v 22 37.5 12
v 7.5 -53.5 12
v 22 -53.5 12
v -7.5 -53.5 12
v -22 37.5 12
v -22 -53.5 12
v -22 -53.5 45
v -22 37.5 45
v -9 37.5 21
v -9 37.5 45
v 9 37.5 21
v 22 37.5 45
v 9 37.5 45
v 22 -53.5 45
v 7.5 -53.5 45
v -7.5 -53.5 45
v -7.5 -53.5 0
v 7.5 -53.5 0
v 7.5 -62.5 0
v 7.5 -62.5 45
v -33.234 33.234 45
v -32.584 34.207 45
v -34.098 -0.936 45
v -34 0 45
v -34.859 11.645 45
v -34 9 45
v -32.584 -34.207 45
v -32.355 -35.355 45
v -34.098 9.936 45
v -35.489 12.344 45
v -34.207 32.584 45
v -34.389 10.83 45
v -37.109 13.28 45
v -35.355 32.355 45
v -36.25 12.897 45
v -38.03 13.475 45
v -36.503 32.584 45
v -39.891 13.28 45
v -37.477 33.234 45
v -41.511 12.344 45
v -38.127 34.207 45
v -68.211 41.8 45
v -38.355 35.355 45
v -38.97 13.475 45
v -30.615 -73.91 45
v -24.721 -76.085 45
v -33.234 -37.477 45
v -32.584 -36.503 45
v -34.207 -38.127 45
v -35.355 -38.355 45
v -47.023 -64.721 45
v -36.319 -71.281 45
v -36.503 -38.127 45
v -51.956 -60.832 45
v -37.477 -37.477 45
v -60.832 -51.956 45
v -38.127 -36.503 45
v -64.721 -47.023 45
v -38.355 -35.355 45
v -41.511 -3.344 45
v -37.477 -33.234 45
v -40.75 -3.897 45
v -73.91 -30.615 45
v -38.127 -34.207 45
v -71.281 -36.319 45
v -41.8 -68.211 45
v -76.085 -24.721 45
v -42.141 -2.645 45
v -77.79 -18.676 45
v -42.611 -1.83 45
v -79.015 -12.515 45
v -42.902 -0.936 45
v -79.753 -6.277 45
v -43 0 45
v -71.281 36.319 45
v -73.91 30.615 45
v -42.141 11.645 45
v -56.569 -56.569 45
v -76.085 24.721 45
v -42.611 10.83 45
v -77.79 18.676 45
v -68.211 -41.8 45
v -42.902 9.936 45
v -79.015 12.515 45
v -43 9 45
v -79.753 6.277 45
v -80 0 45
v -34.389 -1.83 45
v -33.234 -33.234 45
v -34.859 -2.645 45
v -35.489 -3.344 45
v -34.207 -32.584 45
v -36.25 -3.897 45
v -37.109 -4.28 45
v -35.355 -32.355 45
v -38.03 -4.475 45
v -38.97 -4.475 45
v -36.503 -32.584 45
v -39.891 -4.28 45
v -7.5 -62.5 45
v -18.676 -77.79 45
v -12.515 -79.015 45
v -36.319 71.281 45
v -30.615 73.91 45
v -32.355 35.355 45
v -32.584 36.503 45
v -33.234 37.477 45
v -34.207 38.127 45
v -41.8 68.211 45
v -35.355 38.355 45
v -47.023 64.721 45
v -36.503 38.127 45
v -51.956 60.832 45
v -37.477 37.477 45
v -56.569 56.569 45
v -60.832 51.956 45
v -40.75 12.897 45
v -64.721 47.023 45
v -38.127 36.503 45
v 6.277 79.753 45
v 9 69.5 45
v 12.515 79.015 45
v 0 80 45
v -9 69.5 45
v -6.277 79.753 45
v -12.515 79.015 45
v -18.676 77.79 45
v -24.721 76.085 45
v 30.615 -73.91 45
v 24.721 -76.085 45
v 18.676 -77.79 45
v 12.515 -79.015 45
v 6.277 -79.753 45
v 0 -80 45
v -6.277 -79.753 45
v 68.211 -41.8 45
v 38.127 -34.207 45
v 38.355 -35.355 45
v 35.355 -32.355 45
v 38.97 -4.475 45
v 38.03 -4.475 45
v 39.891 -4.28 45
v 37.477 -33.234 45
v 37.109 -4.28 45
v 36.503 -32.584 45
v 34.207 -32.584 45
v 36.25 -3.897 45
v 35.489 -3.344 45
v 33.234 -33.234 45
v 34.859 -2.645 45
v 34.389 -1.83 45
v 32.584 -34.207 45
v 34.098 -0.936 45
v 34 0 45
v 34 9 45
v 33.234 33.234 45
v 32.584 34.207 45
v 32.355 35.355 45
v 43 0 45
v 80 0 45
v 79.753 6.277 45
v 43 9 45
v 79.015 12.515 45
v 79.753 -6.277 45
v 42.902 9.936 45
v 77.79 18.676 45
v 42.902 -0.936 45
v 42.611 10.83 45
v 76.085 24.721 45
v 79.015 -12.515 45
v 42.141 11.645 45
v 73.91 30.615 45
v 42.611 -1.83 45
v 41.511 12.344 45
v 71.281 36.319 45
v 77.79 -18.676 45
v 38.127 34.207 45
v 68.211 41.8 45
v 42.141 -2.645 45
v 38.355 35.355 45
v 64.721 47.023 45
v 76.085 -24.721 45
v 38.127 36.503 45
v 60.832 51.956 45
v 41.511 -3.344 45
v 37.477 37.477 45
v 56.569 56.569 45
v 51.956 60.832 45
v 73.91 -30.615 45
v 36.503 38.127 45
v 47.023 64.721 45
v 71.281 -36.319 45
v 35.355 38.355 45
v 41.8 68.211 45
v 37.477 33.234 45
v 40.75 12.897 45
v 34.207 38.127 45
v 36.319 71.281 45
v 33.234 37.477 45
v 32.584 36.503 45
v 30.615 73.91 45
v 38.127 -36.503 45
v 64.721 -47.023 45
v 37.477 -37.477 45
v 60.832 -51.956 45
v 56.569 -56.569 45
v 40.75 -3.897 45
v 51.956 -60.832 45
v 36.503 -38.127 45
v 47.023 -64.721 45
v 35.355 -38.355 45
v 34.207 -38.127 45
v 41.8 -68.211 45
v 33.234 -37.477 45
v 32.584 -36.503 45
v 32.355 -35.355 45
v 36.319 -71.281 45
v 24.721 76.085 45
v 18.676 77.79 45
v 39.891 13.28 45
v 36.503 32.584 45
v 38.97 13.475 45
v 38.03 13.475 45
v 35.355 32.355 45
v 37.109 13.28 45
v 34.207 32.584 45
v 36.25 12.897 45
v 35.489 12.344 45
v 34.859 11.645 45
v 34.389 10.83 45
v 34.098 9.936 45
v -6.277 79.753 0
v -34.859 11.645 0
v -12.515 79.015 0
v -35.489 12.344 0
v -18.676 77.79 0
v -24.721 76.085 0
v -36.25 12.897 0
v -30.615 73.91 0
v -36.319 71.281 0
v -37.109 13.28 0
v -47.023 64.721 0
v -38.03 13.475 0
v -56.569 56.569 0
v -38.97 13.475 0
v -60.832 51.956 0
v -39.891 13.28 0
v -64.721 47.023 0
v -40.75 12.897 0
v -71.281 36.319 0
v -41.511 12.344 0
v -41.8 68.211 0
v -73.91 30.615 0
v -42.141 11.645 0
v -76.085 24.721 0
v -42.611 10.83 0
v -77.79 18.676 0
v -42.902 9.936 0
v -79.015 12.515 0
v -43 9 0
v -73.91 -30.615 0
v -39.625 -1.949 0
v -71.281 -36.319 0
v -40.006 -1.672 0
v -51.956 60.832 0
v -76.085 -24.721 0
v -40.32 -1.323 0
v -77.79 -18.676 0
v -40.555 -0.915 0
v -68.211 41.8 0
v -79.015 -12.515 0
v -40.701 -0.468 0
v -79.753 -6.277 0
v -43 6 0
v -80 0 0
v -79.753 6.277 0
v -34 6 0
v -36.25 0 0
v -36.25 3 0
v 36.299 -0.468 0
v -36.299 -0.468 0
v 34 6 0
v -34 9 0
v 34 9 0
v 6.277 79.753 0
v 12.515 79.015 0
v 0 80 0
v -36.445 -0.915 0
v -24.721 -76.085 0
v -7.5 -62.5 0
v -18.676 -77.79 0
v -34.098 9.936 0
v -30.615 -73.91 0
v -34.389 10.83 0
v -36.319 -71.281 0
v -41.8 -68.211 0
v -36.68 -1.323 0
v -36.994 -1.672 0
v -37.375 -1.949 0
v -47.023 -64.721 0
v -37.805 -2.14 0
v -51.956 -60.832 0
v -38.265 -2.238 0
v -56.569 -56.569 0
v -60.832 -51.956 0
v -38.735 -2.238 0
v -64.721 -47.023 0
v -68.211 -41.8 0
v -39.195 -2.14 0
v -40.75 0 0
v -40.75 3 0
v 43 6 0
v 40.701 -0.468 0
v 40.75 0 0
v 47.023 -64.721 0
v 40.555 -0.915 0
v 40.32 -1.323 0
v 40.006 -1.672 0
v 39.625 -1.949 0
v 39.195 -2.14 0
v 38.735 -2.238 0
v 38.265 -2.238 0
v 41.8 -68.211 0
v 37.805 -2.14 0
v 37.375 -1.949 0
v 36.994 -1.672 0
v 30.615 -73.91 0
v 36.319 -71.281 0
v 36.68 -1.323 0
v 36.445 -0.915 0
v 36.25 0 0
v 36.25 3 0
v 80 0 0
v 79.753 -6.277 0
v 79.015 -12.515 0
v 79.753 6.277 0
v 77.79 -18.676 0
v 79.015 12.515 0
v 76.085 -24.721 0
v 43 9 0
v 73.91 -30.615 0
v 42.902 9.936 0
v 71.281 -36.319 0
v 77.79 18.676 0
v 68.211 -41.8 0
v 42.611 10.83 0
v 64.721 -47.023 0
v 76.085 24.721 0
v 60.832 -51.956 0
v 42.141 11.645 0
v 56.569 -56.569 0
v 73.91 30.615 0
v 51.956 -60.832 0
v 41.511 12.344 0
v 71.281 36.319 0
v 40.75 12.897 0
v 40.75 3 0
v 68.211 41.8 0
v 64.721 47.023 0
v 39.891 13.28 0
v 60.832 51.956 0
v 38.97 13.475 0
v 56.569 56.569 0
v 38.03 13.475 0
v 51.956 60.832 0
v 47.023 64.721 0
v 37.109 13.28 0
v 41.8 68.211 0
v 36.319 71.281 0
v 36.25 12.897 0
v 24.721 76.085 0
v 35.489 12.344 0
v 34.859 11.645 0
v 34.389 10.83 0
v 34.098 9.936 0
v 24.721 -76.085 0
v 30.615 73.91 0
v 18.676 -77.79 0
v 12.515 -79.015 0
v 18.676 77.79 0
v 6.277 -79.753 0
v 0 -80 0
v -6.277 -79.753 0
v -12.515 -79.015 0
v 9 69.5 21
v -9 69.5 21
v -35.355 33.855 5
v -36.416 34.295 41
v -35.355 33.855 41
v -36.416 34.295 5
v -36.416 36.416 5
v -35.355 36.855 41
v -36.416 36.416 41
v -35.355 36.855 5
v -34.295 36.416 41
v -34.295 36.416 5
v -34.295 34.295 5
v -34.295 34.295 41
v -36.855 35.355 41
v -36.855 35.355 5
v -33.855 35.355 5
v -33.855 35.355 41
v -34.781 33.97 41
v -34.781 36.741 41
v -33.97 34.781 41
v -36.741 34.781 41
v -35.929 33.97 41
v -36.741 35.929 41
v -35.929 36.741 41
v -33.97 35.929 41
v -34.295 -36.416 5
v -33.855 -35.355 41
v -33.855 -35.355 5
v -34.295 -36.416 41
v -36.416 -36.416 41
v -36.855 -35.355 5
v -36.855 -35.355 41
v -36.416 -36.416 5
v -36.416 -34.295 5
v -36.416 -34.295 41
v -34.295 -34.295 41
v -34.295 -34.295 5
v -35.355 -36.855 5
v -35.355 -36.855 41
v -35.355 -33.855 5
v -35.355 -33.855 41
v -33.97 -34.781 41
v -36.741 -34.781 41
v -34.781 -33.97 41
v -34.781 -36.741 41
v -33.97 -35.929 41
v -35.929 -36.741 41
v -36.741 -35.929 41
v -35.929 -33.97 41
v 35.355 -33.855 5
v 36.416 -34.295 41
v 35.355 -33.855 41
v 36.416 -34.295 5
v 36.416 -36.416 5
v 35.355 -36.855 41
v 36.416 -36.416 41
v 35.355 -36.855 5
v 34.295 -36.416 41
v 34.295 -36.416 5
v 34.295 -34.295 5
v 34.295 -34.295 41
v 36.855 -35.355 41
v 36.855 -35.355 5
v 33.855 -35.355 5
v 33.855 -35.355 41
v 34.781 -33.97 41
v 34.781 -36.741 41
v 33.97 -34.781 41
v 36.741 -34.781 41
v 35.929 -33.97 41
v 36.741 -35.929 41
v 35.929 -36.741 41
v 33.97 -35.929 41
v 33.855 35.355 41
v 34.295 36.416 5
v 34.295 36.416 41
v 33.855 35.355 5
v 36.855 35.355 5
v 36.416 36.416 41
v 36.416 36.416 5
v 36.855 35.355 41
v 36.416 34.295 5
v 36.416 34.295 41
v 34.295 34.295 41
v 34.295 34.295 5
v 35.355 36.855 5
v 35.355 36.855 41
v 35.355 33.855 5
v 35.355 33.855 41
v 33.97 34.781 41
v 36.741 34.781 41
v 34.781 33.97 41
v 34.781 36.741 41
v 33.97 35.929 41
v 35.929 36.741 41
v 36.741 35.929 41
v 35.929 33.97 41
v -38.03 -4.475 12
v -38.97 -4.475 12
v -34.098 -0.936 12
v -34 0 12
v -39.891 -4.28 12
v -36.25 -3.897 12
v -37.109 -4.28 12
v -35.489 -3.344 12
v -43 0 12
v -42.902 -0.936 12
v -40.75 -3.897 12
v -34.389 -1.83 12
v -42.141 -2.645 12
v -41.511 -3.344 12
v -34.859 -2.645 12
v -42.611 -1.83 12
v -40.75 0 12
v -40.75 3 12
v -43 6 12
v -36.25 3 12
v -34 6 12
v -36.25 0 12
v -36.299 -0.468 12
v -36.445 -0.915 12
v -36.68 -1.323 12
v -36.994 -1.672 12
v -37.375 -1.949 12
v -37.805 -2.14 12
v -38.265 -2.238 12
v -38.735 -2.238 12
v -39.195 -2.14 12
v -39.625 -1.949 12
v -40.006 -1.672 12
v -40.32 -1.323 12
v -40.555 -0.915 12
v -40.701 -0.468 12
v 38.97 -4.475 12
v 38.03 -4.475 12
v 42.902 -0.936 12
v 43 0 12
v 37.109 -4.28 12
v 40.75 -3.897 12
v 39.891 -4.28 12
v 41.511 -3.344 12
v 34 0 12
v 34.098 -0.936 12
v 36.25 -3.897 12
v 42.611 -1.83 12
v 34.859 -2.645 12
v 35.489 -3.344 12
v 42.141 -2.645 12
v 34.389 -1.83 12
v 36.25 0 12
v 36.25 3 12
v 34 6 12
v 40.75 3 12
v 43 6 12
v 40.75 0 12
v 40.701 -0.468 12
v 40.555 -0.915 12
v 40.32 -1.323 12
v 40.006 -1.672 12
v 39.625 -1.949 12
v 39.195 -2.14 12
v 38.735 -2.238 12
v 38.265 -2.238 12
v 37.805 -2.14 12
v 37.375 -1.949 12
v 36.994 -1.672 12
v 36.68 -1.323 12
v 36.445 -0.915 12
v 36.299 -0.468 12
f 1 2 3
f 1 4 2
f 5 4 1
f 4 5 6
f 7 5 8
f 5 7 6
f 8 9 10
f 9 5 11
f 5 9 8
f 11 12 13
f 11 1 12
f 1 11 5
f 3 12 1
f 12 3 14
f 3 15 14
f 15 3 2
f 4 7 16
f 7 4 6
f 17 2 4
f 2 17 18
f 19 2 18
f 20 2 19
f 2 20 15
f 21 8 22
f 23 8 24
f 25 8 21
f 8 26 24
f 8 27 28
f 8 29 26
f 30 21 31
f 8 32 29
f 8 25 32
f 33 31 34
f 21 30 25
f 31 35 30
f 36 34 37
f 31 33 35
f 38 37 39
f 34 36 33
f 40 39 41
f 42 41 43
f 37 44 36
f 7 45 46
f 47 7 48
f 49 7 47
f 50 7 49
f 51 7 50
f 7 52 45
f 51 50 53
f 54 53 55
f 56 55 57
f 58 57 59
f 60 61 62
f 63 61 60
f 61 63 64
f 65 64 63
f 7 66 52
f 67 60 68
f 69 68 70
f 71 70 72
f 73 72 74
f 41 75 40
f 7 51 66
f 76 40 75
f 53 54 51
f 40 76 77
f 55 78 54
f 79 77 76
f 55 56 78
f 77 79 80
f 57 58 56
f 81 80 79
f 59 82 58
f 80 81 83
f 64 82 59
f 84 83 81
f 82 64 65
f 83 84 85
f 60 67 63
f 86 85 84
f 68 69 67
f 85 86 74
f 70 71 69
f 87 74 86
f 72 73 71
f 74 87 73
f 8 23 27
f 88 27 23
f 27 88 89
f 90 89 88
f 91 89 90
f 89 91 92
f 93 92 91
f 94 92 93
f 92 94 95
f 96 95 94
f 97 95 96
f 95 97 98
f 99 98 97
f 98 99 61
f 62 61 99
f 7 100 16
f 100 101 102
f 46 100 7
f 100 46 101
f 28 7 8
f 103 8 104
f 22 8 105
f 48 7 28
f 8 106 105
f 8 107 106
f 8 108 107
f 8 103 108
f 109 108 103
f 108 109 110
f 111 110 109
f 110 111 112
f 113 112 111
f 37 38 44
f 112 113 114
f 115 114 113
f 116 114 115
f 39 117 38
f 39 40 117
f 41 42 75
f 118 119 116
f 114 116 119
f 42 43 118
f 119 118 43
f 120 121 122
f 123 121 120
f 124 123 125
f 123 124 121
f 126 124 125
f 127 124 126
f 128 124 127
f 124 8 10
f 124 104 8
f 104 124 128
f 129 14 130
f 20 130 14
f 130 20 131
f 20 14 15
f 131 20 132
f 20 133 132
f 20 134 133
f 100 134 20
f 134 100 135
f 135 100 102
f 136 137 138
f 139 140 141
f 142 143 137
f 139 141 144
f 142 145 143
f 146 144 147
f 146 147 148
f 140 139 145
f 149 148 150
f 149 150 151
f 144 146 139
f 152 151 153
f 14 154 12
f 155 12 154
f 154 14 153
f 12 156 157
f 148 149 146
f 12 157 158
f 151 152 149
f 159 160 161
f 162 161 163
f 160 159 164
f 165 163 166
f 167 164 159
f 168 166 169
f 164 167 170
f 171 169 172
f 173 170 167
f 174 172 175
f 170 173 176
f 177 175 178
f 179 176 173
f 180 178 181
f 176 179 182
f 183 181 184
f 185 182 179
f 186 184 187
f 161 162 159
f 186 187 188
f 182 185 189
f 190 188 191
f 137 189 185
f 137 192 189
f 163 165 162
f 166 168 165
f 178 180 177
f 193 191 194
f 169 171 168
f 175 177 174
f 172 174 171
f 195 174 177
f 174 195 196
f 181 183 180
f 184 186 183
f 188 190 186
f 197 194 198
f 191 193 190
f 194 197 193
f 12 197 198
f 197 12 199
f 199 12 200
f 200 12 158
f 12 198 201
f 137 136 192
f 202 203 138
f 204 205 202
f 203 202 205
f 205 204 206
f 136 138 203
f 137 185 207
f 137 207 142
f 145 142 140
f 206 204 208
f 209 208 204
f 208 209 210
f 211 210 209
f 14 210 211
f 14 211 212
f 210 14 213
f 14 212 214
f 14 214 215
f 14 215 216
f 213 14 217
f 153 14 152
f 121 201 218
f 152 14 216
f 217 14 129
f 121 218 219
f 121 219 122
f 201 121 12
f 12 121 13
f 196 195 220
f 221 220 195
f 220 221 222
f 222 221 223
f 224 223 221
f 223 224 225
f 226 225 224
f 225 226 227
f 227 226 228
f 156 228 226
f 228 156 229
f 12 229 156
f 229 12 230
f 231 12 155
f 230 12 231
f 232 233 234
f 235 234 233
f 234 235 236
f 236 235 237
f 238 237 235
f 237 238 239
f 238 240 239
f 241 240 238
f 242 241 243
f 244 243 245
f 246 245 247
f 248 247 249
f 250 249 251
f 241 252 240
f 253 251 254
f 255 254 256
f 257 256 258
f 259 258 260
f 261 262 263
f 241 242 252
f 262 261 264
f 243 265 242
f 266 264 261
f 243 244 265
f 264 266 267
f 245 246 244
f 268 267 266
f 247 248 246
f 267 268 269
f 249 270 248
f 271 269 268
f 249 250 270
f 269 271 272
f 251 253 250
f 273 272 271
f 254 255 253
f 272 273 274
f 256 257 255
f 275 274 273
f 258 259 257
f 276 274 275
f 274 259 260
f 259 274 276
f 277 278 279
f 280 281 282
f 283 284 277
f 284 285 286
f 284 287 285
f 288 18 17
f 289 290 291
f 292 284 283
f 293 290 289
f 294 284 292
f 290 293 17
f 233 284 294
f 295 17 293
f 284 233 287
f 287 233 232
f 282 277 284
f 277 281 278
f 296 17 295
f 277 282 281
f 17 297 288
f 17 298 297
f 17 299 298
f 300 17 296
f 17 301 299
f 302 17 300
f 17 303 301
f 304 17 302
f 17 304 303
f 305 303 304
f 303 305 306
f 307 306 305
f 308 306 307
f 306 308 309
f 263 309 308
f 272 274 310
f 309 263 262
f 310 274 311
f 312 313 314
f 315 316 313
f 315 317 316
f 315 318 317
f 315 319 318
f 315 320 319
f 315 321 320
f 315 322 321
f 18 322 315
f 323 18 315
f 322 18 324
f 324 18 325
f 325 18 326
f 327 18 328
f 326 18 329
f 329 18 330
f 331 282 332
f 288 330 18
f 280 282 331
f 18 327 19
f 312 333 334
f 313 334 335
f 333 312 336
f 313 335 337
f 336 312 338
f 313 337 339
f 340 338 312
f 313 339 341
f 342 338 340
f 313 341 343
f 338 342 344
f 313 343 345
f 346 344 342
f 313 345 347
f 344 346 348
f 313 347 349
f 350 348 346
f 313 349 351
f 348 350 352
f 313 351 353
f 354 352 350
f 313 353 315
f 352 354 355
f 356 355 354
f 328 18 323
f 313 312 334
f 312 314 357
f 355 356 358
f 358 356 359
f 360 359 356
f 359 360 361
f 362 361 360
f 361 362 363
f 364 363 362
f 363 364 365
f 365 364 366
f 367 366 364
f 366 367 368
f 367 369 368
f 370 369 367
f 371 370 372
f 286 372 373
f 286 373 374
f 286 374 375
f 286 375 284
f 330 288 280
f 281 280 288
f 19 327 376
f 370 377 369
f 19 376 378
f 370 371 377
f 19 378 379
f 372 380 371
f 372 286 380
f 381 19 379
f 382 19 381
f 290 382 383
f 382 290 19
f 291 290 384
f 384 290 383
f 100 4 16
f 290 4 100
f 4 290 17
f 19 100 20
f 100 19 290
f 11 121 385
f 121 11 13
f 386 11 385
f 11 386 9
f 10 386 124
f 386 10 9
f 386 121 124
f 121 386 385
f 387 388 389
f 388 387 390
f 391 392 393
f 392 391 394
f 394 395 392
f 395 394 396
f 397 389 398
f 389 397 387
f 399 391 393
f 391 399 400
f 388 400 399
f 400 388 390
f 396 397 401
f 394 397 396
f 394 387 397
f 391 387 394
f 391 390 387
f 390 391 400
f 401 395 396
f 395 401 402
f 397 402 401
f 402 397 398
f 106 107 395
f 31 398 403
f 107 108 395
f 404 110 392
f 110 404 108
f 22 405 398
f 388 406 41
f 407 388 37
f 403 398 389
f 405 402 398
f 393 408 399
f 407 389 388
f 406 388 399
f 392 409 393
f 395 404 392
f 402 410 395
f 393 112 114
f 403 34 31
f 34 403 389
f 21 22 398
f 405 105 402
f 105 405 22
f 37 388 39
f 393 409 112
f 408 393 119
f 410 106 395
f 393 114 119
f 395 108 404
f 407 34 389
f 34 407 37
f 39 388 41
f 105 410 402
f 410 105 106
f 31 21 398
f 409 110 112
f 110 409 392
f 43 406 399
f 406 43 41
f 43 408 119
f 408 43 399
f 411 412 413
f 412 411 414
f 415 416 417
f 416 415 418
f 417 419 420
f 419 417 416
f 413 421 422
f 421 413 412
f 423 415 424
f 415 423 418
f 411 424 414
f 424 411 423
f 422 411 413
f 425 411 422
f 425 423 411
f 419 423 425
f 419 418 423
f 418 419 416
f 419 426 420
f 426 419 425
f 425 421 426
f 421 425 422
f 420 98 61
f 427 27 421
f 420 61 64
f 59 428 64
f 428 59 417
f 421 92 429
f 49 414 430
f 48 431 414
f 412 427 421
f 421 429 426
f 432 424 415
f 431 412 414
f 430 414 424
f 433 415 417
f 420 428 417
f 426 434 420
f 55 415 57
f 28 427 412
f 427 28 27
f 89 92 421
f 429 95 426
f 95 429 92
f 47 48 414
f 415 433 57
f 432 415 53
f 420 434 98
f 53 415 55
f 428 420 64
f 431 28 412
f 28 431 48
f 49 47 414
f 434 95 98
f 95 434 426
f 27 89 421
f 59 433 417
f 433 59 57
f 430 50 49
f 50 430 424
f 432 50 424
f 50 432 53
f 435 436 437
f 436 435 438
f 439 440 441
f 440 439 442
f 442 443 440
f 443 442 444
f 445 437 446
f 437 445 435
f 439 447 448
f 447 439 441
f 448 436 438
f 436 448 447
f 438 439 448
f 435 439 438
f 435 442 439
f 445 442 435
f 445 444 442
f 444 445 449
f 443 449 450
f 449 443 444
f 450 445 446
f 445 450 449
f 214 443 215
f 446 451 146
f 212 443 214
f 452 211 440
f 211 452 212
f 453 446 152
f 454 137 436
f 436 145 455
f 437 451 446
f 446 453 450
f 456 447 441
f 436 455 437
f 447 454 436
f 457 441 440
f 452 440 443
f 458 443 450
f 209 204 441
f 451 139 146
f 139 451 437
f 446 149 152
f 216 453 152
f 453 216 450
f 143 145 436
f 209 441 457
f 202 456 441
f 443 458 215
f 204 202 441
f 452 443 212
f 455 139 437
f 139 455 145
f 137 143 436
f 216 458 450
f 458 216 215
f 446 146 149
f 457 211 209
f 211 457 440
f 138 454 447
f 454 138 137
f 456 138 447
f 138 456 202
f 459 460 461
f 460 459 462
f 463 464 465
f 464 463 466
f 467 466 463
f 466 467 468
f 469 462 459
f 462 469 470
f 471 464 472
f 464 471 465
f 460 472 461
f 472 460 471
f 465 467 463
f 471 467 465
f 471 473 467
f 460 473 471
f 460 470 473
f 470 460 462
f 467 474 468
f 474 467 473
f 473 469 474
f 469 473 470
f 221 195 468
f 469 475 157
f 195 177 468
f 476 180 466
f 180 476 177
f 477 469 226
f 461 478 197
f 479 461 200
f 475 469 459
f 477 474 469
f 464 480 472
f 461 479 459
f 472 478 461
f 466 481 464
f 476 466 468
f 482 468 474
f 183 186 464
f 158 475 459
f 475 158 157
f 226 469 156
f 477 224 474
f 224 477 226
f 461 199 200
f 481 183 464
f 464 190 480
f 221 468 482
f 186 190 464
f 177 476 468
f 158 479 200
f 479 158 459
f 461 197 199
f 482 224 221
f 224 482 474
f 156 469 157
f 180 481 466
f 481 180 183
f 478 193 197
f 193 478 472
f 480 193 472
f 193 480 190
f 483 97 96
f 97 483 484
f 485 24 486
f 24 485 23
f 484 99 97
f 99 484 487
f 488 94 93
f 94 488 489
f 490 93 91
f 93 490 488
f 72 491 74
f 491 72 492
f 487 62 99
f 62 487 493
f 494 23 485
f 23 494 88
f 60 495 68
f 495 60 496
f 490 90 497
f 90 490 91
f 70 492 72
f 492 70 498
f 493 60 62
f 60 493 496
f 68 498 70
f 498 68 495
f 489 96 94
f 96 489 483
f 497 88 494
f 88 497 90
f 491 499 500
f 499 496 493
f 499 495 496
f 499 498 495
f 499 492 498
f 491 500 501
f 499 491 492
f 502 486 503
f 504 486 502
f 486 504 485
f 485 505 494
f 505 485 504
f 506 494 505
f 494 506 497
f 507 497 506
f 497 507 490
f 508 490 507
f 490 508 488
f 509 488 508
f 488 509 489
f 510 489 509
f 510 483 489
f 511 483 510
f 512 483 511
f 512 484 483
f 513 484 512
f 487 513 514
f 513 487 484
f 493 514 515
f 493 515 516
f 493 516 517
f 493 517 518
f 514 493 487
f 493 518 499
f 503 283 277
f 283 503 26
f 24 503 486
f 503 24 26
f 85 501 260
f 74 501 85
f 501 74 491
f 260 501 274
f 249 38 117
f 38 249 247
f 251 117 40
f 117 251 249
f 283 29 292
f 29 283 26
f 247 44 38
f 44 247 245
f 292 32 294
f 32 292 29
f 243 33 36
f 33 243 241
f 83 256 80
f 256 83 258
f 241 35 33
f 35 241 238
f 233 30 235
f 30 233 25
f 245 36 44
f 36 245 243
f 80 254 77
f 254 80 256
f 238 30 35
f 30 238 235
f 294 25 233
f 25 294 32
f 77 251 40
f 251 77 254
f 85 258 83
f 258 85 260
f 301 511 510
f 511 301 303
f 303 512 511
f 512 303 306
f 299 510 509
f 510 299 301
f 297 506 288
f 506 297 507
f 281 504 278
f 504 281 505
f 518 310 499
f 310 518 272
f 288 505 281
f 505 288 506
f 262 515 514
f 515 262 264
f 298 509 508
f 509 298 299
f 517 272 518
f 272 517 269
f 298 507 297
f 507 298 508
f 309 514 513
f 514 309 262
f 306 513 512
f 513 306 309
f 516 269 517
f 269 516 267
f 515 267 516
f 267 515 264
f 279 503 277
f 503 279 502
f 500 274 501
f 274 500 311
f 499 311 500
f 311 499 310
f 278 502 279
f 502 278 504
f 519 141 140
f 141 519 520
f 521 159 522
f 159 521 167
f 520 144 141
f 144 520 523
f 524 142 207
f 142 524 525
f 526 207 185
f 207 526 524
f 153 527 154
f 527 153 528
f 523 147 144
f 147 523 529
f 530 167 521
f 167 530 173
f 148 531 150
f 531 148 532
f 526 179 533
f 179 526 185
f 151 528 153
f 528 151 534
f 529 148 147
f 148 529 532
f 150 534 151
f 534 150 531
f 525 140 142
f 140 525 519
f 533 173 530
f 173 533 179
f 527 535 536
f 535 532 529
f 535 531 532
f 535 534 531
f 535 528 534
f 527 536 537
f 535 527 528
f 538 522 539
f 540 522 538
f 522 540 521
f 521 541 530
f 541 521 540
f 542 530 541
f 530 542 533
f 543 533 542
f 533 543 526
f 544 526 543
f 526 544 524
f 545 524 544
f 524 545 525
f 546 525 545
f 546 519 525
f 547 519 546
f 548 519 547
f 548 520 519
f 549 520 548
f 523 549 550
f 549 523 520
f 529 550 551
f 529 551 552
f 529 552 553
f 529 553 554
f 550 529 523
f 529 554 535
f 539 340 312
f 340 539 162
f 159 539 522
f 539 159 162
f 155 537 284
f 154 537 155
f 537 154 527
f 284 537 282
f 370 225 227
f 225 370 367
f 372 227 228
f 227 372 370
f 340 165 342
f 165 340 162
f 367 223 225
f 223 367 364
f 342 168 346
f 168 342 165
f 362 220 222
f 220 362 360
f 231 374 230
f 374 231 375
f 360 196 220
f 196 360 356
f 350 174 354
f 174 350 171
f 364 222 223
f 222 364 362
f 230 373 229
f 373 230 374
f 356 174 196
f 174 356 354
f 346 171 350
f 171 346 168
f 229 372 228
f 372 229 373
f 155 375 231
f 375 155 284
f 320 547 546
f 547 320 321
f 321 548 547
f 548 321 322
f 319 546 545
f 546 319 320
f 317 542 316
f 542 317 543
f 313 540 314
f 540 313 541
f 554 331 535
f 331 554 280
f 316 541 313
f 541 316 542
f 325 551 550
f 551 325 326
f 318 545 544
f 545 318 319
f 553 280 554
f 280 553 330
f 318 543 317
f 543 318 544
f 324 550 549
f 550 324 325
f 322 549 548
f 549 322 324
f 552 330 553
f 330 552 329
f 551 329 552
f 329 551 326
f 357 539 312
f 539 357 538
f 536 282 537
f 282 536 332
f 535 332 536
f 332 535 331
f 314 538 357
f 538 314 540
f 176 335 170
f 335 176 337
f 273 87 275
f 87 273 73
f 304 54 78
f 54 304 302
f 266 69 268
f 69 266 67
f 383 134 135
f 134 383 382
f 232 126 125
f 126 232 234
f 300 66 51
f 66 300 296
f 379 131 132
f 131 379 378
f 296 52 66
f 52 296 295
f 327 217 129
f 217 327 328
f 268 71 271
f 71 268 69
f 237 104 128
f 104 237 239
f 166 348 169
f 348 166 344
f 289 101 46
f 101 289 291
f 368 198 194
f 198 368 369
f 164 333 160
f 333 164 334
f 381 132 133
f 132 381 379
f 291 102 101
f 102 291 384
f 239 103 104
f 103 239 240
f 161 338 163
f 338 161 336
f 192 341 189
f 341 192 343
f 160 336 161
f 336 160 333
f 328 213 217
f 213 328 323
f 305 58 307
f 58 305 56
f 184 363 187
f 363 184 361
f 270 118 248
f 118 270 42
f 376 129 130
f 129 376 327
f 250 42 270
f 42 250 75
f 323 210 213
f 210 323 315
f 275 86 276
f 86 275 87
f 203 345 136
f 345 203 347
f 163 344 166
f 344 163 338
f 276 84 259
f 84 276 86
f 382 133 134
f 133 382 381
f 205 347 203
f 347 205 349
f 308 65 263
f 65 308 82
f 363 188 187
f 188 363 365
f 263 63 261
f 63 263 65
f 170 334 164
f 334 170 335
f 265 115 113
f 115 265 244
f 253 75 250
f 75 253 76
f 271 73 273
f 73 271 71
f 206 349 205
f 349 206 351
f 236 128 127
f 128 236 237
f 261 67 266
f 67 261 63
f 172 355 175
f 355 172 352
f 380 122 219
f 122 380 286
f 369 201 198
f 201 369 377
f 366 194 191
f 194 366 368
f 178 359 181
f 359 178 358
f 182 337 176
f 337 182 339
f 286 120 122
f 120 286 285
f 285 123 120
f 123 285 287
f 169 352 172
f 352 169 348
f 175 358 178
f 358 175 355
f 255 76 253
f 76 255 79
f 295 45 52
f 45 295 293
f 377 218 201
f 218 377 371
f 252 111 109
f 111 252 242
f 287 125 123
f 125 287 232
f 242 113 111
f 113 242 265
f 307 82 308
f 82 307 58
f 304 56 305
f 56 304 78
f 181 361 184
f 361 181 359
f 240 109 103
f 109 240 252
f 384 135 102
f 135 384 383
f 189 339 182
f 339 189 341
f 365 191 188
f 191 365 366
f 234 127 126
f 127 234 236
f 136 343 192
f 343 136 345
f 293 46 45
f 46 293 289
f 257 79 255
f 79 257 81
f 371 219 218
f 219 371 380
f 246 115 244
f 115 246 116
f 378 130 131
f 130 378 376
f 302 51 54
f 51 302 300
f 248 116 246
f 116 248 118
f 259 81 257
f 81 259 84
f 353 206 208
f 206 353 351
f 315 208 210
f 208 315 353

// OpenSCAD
d = 160; // outer diameter of the part mount onto the ceiling
ds = 77; // mounting hole position in diameter

dsh = 4.5; // screw hole diameter
dsth = 9; // screw through hole diameter

rp = 50; // radius of the screw pre-holes

hb = 12; // additional base plate height

bw = 44; // width of the adapter box;
bd = 91; // longer width of the adapter box
bh = 33; // adapter box height

module screw_hole(l=dsth) {
    large=100;
    $fn=30;
    tw = 3; // transition width
    
    cylinder(d=dsth, h=large);
    translate([-dsth/2,0,0]) cube([dsth,l,large]);
    
    translate([0,l,-large]) cylinder(d=dsth, h=large*2);
    
    rotate([180,0,0]) cylinder(d=dsh, h=large);
    
    hh = dsth/2;
    translate([0,0,-large]) linear_extrude(large)
        polygon([
            [-dsh/2,0],       [-dsh/2,l-hh-tw/2], 
            [-dsth/2,l-hh+tw/2], [-dsth/2,l],
            [dsth/2,l],       [dsth/2,l-hh+tw/2], 
            [dsh/2,l-hh-tw/2],   [dsh/2,0],
        ]);
    
    //translate([-dsth/2,dsth/2,-large]) cube([dsth,l-dsth/2,large]);    
    //translate([-dsh/2,0,-large]) cube([dsh,l,large]);
    
    
}

module ac_hole() {
    w = 15;
    d = 9;
    h = bh+hb;
    translate([-w/2,-d,0]) cube([w, d, h]);
}

module usb_hole() {
    w = 18;
    d = 32;
    translate([-w/2,0,hb+9]) cube([w, d, 100]);
}

module pre_holes() {
    tb = 5; // thickness margin to the bottom plane
    for(deg=[0,90,180,270]){
        rotate([0,0,deg]) rotate([0,0,45]) translate([0,rp,0]) union() {
            translate([0,0,tb]) cylinder(h=hb+bh, d=3, $fn=8);
            translate([0,0,hb+bh]) rotate([180,0,0]) 
                cylinder(d1=6,d2=3,h=4, $fn=16);
        }
    }
}
module body() {
    difference() {
        cylinder(h=bh+hb, d=d, $fn=80);
        
        translate([0,-8,0]) union() {
            translate([0,0,hb]) 
                linear_extrude(bh+1) square([bw, bd], center=true);
            translate([0,-bd/2,0]) ac_hole();
            translate([0,bd/2,0]) usb_hole();
        }
        
        pre_holes();
        translate([-ds/2,0,hb]) screw_hole();
        translate([ds/2,0,hb]) screw_hole();
    }
}

large = 200;

// semicircle half
*difference() {
    body();
    translate([-large,20,-large]) cube([2*large, 2*large, 2*large]);
}

*intersection() {
    body();
    translate([0,0,8]) linear_extrude(6) 
        square([large*2, large*2], center=true);
}

body();
